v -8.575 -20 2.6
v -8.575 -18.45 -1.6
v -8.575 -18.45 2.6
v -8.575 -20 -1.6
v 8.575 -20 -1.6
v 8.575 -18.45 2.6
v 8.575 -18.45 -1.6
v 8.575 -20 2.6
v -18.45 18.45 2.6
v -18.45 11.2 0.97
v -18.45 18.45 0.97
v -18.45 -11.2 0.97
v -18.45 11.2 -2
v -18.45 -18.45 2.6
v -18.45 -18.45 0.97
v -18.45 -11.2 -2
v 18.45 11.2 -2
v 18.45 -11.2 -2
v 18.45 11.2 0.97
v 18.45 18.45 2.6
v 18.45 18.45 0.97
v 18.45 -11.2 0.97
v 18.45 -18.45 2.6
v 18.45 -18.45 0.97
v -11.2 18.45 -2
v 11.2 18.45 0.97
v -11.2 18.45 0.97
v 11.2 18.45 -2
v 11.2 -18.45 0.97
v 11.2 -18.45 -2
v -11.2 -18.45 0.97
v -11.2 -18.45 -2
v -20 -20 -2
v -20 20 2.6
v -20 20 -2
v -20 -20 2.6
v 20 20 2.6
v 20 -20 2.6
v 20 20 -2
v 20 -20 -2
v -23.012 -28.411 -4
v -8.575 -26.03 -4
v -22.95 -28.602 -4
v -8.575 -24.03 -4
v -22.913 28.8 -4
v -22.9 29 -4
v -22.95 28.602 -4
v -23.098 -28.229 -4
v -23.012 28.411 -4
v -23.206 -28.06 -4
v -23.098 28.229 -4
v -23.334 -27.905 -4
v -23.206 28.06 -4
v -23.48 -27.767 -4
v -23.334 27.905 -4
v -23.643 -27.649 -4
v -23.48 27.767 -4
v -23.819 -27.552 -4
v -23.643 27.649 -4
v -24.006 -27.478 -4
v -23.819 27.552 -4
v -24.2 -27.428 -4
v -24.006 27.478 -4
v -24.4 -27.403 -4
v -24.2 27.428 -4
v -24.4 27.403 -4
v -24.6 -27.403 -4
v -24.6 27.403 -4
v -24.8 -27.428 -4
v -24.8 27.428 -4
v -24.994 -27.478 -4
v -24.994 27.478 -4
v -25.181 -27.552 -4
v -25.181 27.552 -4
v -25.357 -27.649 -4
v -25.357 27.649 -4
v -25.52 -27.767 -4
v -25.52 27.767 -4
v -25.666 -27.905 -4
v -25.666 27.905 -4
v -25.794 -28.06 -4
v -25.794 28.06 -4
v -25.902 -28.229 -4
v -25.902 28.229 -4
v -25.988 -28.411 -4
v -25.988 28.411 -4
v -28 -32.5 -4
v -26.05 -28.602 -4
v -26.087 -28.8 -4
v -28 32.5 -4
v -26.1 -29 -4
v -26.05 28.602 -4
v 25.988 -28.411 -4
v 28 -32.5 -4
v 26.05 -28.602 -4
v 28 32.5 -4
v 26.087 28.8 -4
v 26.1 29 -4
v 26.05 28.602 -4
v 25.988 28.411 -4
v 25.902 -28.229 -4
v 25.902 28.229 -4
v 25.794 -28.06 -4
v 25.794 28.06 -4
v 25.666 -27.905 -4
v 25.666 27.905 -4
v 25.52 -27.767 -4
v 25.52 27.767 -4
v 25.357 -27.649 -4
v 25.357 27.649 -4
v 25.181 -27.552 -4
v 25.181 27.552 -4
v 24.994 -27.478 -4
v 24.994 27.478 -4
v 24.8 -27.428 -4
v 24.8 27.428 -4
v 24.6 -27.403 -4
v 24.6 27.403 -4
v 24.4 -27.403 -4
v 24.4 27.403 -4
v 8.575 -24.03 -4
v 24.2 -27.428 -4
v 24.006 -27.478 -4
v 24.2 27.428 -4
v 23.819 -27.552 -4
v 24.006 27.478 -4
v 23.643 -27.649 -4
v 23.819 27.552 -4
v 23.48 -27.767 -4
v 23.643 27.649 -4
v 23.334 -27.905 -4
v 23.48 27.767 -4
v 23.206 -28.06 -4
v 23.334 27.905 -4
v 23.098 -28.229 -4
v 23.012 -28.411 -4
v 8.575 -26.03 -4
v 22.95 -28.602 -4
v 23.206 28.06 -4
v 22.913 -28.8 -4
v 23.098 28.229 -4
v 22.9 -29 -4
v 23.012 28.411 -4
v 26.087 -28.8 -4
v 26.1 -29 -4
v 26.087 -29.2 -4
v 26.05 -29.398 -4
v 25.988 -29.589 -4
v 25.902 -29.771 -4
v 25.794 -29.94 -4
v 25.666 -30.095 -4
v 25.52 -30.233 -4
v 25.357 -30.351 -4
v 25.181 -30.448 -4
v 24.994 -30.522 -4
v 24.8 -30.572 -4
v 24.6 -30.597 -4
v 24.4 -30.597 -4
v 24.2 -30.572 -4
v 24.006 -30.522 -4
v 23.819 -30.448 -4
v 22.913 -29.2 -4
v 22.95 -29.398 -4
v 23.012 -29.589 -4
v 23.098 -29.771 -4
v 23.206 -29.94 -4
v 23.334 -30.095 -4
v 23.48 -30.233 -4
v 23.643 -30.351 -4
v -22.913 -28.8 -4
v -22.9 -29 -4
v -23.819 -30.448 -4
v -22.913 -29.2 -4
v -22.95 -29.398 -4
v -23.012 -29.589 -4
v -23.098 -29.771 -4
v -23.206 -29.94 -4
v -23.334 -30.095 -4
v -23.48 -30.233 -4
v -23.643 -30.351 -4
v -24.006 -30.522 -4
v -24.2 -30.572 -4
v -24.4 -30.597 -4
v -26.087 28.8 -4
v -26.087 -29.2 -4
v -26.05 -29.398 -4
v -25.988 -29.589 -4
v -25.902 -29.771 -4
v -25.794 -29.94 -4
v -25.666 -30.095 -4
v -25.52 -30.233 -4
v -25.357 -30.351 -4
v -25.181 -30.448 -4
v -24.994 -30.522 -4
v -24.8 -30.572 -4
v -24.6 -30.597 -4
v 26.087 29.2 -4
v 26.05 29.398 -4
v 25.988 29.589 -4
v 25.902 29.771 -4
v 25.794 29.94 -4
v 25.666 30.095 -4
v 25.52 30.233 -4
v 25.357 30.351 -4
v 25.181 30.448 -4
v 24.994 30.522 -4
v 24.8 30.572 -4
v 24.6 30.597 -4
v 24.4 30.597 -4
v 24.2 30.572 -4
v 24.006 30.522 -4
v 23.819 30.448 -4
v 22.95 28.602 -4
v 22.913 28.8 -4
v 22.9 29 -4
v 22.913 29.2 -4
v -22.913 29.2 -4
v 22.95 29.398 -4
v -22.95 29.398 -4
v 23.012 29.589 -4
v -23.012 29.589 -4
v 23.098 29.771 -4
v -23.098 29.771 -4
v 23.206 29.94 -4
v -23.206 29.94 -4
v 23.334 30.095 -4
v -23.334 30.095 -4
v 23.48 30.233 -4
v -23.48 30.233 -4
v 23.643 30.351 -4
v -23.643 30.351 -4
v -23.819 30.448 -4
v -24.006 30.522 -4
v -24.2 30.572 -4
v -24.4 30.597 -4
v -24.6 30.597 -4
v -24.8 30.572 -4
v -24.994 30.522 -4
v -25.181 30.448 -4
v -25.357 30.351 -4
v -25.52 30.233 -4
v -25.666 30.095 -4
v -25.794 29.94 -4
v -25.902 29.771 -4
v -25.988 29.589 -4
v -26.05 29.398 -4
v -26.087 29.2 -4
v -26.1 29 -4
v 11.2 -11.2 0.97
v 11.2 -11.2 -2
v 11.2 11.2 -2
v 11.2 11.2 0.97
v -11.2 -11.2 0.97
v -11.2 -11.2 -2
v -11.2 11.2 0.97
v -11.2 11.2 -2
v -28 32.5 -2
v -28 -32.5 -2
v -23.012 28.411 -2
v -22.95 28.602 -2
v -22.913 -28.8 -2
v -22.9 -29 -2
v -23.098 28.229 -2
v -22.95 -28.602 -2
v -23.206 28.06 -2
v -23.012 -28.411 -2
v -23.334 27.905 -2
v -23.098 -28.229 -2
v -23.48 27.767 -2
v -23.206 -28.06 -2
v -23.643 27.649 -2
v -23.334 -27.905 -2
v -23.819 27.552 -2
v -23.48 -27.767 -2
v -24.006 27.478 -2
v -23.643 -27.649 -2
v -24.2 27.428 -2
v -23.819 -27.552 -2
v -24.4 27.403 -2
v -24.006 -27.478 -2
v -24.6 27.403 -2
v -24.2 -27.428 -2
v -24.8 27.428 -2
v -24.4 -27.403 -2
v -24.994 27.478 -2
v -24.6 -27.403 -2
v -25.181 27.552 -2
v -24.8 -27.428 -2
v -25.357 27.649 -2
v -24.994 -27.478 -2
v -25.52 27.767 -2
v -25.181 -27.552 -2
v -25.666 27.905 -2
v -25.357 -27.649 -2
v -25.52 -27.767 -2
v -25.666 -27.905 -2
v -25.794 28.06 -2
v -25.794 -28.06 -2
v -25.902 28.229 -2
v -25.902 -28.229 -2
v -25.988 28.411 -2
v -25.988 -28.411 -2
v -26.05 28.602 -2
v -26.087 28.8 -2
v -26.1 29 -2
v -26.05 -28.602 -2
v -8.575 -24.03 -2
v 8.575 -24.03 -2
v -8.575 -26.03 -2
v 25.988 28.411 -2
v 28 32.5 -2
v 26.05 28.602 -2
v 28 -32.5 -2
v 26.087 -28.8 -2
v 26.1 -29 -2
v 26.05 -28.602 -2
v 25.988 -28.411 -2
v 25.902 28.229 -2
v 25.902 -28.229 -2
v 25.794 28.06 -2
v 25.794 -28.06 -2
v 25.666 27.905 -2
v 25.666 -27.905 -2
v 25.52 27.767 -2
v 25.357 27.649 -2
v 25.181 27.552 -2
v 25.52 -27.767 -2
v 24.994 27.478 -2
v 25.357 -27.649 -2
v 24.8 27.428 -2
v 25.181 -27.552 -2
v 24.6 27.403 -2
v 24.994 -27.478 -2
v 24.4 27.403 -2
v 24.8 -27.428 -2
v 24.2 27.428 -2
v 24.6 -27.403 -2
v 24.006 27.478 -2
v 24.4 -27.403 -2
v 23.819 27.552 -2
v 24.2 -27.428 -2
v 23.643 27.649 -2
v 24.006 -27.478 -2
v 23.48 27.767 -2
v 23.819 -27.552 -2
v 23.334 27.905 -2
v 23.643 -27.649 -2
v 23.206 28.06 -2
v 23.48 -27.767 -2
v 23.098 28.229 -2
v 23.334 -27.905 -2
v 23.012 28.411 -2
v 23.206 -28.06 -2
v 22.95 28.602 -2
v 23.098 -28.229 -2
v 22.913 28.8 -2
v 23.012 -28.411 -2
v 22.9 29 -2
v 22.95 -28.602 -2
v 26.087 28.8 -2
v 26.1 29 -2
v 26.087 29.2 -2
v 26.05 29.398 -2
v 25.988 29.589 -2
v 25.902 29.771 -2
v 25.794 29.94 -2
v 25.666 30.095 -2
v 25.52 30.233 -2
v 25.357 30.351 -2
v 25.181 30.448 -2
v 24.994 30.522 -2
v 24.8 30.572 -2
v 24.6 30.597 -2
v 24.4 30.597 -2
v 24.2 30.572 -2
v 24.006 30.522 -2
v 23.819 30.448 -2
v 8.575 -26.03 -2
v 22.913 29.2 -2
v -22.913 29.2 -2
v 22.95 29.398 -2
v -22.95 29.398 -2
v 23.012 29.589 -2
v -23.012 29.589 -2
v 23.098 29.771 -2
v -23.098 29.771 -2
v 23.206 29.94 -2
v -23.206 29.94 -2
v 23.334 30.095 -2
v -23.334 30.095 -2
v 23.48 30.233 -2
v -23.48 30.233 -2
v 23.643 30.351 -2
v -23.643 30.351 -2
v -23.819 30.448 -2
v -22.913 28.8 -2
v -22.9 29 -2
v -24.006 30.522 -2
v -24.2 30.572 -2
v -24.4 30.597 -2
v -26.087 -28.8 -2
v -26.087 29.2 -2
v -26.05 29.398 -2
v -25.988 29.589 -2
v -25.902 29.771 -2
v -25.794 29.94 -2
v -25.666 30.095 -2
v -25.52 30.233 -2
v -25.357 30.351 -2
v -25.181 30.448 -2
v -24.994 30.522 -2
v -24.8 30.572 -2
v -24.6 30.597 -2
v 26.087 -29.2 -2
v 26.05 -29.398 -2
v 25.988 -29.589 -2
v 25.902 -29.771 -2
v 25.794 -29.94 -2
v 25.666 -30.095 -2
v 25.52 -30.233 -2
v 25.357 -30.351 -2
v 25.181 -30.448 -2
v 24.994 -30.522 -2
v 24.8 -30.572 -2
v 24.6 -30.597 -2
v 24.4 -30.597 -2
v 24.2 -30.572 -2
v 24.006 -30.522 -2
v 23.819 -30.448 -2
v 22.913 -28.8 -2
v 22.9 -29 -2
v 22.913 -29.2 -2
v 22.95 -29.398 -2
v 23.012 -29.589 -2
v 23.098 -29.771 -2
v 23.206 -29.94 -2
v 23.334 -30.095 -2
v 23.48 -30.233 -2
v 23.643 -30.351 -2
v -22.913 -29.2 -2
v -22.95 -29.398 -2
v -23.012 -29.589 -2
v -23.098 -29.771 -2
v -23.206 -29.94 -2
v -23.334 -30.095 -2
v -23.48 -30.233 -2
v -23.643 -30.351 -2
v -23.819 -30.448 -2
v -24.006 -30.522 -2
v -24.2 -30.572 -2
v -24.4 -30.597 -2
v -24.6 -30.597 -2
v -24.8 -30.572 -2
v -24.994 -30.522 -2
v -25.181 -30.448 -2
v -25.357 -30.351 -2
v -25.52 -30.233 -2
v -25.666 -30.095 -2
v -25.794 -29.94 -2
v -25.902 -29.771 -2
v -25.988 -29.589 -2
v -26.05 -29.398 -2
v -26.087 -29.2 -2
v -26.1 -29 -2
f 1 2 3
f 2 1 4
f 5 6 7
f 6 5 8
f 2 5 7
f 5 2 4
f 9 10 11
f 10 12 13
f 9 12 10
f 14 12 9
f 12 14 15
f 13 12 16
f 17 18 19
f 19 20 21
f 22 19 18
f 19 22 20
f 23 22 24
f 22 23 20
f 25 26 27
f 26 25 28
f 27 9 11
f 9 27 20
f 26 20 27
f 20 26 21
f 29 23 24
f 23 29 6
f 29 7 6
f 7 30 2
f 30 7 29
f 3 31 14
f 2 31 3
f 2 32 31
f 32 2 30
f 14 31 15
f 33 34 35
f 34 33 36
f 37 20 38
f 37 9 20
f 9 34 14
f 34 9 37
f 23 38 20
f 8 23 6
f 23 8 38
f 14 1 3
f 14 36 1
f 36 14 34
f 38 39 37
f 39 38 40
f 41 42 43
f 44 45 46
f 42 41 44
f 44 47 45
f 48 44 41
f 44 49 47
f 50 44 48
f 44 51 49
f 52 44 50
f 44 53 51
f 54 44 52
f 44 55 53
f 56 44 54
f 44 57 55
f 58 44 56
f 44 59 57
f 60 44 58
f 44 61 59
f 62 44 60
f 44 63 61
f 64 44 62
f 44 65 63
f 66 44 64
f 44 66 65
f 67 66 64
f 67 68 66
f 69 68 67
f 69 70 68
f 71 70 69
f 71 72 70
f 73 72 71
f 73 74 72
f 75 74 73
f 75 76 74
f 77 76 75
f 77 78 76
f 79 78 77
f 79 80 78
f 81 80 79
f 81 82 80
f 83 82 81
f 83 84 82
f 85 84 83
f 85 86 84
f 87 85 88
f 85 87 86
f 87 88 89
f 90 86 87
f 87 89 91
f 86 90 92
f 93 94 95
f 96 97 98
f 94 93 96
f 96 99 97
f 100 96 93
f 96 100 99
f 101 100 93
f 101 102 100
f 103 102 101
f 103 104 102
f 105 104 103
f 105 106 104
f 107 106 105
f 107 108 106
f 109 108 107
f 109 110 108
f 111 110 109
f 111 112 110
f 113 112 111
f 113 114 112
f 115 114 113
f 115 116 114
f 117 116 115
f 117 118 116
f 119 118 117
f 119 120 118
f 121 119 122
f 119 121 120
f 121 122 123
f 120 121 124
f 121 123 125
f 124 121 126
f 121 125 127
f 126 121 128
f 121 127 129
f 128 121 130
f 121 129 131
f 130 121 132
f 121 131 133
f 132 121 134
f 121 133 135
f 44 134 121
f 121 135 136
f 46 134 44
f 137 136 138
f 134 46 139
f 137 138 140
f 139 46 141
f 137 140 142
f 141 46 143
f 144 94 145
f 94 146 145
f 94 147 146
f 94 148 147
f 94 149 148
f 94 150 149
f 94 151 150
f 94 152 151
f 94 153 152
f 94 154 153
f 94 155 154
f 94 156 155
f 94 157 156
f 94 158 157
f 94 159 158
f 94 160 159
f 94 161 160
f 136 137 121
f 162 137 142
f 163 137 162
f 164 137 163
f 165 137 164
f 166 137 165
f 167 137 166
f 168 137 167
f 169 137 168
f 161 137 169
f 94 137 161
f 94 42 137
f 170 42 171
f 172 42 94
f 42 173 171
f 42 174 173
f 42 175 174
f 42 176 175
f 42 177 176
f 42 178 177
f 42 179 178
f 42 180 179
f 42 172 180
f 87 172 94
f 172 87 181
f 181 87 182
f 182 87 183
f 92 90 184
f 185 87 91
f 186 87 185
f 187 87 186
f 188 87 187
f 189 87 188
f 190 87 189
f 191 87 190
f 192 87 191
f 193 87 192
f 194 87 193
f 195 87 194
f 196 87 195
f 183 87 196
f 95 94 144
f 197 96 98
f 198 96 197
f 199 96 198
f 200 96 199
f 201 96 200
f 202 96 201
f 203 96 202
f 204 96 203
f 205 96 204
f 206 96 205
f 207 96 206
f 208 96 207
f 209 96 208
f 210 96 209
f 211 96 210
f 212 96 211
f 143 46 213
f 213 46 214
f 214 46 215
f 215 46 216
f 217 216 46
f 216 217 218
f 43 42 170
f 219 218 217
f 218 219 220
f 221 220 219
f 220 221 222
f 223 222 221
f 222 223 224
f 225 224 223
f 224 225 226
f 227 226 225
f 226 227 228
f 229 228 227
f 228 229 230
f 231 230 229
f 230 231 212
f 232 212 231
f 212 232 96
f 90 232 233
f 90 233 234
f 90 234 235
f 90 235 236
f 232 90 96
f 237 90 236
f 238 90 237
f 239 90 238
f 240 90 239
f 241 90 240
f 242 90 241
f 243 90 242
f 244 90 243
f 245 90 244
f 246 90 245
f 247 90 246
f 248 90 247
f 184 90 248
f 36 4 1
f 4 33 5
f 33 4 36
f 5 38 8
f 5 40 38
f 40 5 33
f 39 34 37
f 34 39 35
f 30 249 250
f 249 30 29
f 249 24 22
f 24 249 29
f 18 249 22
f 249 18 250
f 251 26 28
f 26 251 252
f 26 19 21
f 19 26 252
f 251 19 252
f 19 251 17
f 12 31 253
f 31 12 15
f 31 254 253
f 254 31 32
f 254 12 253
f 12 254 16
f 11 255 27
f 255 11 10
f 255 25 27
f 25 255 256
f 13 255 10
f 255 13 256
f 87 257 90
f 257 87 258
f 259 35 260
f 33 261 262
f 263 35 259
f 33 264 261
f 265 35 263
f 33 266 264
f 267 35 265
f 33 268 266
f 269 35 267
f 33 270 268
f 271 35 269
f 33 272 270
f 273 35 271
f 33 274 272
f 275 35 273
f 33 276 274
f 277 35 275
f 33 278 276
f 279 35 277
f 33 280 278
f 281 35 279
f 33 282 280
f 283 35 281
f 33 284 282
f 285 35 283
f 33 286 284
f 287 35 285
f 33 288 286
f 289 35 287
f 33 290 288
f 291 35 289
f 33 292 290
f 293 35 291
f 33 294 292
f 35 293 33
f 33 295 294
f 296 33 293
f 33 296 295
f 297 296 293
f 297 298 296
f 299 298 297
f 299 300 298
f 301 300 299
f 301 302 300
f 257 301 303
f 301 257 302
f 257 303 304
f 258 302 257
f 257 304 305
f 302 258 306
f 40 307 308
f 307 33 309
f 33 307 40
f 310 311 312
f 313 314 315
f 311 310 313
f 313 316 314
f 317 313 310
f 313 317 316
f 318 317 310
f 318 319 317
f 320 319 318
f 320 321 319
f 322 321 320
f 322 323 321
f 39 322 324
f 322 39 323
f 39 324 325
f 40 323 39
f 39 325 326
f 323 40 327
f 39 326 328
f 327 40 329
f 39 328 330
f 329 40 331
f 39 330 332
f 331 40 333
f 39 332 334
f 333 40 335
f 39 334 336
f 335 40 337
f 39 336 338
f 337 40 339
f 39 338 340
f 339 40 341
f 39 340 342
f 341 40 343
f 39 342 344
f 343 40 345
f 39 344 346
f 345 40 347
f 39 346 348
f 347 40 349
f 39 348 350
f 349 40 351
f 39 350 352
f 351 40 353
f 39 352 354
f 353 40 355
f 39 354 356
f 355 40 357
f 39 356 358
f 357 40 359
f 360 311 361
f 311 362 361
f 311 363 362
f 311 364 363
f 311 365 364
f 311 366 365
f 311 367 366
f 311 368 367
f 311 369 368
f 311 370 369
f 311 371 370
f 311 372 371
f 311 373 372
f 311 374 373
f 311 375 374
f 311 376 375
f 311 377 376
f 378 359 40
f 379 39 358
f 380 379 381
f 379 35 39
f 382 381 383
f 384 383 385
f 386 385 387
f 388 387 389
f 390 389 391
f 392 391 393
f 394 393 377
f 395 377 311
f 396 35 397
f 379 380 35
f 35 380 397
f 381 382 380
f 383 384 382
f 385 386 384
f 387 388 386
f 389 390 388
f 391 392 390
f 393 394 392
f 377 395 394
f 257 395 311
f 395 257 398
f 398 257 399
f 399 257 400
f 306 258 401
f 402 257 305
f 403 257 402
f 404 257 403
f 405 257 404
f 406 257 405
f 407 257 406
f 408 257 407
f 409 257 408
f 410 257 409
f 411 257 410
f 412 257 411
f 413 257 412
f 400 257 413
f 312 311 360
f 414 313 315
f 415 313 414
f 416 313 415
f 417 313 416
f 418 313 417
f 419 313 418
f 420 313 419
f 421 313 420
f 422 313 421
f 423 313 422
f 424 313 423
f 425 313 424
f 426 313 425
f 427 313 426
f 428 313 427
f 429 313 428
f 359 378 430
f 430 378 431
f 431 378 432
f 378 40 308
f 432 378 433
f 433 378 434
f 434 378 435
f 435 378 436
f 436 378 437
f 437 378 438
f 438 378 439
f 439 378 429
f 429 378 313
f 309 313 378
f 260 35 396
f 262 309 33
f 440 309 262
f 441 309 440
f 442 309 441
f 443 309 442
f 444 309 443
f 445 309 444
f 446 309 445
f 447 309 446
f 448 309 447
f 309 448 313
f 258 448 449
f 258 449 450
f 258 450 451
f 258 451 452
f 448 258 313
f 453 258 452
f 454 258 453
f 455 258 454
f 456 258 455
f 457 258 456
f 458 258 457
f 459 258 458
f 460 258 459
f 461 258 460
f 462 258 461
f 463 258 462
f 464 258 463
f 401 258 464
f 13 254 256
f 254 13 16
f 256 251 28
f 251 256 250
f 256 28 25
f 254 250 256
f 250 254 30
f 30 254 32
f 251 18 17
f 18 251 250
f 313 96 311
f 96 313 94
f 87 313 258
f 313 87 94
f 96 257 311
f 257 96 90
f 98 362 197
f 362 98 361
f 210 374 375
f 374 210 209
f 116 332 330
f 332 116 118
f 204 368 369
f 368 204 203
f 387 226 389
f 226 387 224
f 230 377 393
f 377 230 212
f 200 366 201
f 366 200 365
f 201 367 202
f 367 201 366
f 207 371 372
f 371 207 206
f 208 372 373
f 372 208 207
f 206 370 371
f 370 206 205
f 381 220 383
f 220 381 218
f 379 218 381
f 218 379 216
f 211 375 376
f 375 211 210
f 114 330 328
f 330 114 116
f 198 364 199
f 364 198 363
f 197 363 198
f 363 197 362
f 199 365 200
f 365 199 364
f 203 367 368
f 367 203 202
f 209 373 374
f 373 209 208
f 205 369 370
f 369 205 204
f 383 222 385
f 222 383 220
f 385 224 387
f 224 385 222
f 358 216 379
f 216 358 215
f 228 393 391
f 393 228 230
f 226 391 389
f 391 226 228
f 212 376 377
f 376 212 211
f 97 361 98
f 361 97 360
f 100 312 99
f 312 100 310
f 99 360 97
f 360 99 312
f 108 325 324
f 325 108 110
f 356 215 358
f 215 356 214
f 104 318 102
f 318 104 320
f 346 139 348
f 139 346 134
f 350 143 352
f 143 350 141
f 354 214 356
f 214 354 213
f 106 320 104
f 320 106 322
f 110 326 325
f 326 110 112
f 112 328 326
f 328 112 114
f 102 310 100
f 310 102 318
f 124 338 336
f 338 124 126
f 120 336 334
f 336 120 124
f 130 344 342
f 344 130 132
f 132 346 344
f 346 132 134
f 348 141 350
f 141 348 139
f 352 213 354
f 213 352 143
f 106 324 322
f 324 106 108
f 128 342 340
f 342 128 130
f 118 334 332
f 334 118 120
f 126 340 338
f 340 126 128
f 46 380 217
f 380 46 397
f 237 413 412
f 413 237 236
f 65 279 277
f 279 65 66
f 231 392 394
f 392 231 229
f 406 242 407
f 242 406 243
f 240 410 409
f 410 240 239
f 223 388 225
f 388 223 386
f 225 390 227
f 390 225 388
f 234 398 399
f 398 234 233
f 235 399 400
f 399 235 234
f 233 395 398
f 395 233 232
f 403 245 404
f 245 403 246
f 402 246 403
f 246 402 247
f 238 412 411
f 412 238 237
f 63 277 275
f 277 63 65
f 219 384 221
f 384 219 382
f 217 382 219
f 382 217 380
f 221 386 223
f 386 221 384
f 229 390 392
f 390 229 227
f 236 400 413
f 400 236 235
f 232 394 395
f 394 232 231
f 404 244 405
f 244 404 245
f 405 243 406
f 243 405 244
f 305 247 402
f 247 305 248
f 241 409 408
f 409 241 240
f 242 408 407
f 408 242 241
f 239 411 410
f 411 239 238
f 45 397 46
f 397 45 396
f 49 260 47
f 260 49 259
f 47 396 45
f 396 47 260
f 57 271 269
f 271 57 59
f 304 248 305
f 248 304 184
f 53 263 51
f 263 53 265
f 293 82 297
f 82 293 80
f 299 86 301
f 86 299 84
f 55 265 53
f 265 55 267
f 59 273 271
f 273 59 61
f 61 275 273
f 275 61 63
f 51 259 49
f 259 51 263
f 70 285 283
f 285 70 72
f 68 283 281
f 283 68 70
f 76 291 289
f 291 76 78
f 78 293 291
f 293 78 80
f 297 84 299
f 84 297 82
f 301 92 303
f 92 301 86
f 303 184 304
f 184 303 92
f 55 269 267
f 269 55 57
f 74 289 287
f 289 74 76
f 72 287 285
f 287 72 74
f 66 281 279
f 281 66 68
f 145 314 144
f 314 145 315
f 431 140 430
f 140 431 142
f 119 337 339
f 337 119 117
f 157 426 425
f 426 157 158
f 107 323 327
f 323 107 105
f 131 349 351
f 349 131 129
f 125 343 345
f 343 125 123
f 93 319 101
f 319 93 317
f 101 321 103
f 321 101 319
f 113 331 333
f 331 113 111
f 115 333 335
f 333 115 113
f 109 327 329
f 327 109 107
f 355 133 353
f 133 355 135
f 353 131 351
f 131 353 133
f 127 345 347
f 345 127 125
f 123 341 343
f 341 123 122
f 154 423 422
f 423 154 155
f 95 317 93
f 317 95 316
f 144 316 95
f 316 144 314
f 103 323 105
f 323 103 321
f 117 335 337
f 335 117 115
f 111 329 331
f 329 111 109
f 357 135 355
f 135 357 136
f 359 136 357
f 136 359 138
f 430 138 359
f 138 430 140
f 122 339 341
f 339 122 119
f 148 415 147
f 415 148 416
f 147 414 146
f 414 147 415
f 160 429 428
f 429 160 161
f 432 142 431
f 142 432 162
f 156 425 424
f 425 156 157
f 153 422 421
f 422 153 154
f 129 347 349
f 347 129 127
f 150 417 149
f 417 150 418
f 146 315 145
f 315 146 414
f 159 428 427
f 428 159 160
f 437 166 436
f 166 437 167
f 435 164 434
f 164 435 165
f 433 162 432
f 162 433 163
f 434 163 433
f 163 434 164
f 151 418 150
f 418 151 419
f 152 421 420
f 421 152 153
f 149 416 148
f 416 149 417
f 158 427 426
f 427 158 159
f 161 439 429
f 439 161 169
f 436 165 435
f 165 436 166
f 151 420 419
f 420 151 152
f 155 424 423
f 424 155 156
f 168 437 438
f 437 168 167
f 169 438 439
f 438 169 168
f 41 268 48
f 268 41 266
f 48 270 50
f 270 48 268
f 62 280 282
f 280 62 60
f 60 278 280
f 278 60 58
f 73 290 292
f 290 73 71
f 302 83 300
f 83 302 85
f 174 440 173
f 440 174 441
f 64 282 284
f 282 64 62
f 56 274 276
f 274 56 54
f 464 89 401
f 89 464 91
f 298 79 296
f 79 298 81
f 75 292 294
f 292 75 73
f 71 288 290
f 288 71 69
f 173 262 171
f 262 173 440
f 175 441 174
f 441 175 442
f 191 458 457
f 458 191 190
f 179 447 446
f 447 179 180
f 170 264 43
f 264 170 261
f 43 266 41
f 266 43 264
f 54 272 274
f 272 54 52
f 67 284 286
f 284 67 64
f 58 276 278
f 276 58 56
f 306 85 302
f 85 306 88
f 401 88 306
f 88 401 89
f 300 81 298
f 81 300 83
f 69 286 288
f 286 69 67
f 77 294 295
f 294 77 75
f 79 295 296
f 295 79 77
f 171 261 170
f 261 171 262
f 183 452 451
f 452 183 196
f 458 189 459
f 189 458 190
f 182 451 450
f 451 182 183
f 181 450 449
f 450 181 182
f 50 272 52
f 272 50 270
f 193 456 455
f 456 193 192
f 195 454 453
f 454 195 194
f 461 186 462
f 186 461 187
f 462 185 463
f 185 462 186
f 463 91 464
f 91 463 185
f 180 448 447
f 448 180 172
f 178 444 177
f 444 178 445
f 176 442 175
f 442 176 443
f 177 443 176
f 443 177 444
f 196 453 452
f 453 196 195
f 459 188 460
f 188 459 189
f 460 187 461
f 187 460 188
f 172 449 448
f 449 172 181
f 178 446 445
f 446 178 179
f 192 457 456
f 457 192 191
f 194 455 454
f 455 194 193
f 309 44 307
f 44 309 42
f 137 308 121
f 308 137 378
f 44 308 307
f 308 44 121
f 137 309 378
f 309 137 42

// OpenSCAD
// Un-official (China source) M12 mount 36 x 36 mm RPi-compatible camera
// (search "raspberry camera board M12x0.5 lens" on Ebay)
// Sept. 16, 2014  J. Beale
// version 1.1 (added 2mm to U-bracket to allow tilt motion with screw in place)

// ==============================================================
slop = 0.2;  // size by which ID of holes shrinks during print
fn = 50;     // facets on a cylinder
eps = 0.03;  // a small number

CBW = 36.5; // width of camera PCB (x)
CBL = 36.5; // length of camera PCB (y)
CBH = 1.63; // thickness of camera PCB
CBBH = 2.9-CBH; // camera PCB bottom component keep-out height
CBBS = 2.0; // PCB bottom keeput setback from edge
CBBCS = 7;  // PCB bottom keepout corner setback

CBFCH = 4.45-CBH; // 15-way flex connector height
CBFCW = 22.1; // 15-way flex connector width
CBFCL = 5.65; // 15-way FC length
CBFCE = 0.97; // 15-way FC edge setback

MHOD = 3.0; // M3 mounting screw hole OD
MHCC = 29.0; // M3 mounting hole center-center distance

FCW = 16.15; // 15-way FC width

// ===================================================
// == HOUSING for 36x36mm M12-lens camera board  ==

PIW = 56; // rpi2 width (x axis)
PIL = 65; // rpi2 length over mounting holes (y axis)
CCW = 40; // camera housing width (x axis)
CCL = 40; // camera housing length (y axis)
CCBD = 4; // camera housing back depth (z axis)
CCBF = 2.6; // camera housing back front lip height (z axis)
CCBIW = CBW+slop*2; // housing back interior width
CCBIL = CBL+slop*2; // housing back interior length
CCBSW = FCW+1; // width for flex cable slot
BS=8; // mounting screw boss width
BSO=0.8; // boss offset towards center
SHID = 3.0;  // ID of screw hole (note ID will be "slop" smaller)

font = "Liberation Sans";
num_size = 8;
letter_size = 24;
letter_height = 2;

module CHB_outside() {
  difference() {
    union() {
      translate([-CCW/2,-CCL/2,-CCBD]) 
		    cube([CCW,CCL,CCBD+CCBF]); // back body of housing
    }
    union() {
	    translate([-CCBSW/2,-(CCL/2)-eps,-1.6]) 
		    cube([CCBSW,CCL/2,CCBD*2]); // slot for flex cable
      translate([-CCBIW/2,-CCBIL/2,-(CBFCH+slop)]) 
		    cube([CCBIW,CCBIL,CCBD+CCBF]); // cutout hole for board
    }
  }
}

// mounting screw bosses in 4 corners of camera back
module CHB_Boss() {
  union() {
	  translate([(CCW/2)-BS-BSO,-CCL/2+BSO,-(BS/2)])
      cube([BS,BS,CCBD+CCBF-CBH]); // boss for mounting screw
	  translate([(CCW/2)-BS-BSO,CCL/2-BS-BSO,-(BS/2)])
      cube([BS,BS,CCBD+CCBF-CBH]); // boss for mounting screw
	  translate([-(CCW/2)+BSO,-CCL/2+BSO,-(BS/2)])
      cube([BS,BS,CCBD+CCBF-CBH]); // boss for mounting screw
	  translate([-(CCW/2)+BSO,CCL/2-BS-BSO,-(BS/2)])
      cube([BS,BS,CCBD+CCBF-CBH]); // boss for mounting screw
  }
}

module CameraHousingBack() {
  difference() {
    union() {
      CHB_outside();
      CHB_Boss();
    }
  }
}

module letter(l,font_size=30) {
  // Use linear_extrude() to make the letters 3D objects as
  // they are only 2D shapes when only using text()
  linear_extrude(height = letter_height) {
    text(l, size = font_size, font = font, halign = "center", valign = "center", $fn = 36);
  }
}

difference() {
  union() {
    CameraHousingBack();
    translate([-PIW/2,-PIL/2,-CCBD])
      difference() {
        cube([PIW,PIL,CCBD-2]);
      }
  }
  union() {
    translate([PIW/2-3.5,PIL/2-3.5,-BS])
 	    cylinder(d=SHID+slop,h=50,$fn=50);
    translate([-PIW/2+3.5,PIL/2-3.5,-BS])
 	    cylinder(d=SHID+slop,h=50,$fn=50);
    translate([PIW/2-3.5,-PIL/2+3.5,-BS])
 	    cylinder(d=SHID+slop,h=50,$fn=50);
    translate([-PIW/2+3.5,-PIL/2+3.5,-BS])
 	    cylinder(d=SHID+slop,h=50,$fn=50);
  }
  //translate([0,26,-3])
    //letter("1",num_size);
  translate([-CCBSW/2,-(CCL/2)-eps-6,-4]) 
    cube([CCBSW,2,CCBD*2]); // slot for flex cable
}
